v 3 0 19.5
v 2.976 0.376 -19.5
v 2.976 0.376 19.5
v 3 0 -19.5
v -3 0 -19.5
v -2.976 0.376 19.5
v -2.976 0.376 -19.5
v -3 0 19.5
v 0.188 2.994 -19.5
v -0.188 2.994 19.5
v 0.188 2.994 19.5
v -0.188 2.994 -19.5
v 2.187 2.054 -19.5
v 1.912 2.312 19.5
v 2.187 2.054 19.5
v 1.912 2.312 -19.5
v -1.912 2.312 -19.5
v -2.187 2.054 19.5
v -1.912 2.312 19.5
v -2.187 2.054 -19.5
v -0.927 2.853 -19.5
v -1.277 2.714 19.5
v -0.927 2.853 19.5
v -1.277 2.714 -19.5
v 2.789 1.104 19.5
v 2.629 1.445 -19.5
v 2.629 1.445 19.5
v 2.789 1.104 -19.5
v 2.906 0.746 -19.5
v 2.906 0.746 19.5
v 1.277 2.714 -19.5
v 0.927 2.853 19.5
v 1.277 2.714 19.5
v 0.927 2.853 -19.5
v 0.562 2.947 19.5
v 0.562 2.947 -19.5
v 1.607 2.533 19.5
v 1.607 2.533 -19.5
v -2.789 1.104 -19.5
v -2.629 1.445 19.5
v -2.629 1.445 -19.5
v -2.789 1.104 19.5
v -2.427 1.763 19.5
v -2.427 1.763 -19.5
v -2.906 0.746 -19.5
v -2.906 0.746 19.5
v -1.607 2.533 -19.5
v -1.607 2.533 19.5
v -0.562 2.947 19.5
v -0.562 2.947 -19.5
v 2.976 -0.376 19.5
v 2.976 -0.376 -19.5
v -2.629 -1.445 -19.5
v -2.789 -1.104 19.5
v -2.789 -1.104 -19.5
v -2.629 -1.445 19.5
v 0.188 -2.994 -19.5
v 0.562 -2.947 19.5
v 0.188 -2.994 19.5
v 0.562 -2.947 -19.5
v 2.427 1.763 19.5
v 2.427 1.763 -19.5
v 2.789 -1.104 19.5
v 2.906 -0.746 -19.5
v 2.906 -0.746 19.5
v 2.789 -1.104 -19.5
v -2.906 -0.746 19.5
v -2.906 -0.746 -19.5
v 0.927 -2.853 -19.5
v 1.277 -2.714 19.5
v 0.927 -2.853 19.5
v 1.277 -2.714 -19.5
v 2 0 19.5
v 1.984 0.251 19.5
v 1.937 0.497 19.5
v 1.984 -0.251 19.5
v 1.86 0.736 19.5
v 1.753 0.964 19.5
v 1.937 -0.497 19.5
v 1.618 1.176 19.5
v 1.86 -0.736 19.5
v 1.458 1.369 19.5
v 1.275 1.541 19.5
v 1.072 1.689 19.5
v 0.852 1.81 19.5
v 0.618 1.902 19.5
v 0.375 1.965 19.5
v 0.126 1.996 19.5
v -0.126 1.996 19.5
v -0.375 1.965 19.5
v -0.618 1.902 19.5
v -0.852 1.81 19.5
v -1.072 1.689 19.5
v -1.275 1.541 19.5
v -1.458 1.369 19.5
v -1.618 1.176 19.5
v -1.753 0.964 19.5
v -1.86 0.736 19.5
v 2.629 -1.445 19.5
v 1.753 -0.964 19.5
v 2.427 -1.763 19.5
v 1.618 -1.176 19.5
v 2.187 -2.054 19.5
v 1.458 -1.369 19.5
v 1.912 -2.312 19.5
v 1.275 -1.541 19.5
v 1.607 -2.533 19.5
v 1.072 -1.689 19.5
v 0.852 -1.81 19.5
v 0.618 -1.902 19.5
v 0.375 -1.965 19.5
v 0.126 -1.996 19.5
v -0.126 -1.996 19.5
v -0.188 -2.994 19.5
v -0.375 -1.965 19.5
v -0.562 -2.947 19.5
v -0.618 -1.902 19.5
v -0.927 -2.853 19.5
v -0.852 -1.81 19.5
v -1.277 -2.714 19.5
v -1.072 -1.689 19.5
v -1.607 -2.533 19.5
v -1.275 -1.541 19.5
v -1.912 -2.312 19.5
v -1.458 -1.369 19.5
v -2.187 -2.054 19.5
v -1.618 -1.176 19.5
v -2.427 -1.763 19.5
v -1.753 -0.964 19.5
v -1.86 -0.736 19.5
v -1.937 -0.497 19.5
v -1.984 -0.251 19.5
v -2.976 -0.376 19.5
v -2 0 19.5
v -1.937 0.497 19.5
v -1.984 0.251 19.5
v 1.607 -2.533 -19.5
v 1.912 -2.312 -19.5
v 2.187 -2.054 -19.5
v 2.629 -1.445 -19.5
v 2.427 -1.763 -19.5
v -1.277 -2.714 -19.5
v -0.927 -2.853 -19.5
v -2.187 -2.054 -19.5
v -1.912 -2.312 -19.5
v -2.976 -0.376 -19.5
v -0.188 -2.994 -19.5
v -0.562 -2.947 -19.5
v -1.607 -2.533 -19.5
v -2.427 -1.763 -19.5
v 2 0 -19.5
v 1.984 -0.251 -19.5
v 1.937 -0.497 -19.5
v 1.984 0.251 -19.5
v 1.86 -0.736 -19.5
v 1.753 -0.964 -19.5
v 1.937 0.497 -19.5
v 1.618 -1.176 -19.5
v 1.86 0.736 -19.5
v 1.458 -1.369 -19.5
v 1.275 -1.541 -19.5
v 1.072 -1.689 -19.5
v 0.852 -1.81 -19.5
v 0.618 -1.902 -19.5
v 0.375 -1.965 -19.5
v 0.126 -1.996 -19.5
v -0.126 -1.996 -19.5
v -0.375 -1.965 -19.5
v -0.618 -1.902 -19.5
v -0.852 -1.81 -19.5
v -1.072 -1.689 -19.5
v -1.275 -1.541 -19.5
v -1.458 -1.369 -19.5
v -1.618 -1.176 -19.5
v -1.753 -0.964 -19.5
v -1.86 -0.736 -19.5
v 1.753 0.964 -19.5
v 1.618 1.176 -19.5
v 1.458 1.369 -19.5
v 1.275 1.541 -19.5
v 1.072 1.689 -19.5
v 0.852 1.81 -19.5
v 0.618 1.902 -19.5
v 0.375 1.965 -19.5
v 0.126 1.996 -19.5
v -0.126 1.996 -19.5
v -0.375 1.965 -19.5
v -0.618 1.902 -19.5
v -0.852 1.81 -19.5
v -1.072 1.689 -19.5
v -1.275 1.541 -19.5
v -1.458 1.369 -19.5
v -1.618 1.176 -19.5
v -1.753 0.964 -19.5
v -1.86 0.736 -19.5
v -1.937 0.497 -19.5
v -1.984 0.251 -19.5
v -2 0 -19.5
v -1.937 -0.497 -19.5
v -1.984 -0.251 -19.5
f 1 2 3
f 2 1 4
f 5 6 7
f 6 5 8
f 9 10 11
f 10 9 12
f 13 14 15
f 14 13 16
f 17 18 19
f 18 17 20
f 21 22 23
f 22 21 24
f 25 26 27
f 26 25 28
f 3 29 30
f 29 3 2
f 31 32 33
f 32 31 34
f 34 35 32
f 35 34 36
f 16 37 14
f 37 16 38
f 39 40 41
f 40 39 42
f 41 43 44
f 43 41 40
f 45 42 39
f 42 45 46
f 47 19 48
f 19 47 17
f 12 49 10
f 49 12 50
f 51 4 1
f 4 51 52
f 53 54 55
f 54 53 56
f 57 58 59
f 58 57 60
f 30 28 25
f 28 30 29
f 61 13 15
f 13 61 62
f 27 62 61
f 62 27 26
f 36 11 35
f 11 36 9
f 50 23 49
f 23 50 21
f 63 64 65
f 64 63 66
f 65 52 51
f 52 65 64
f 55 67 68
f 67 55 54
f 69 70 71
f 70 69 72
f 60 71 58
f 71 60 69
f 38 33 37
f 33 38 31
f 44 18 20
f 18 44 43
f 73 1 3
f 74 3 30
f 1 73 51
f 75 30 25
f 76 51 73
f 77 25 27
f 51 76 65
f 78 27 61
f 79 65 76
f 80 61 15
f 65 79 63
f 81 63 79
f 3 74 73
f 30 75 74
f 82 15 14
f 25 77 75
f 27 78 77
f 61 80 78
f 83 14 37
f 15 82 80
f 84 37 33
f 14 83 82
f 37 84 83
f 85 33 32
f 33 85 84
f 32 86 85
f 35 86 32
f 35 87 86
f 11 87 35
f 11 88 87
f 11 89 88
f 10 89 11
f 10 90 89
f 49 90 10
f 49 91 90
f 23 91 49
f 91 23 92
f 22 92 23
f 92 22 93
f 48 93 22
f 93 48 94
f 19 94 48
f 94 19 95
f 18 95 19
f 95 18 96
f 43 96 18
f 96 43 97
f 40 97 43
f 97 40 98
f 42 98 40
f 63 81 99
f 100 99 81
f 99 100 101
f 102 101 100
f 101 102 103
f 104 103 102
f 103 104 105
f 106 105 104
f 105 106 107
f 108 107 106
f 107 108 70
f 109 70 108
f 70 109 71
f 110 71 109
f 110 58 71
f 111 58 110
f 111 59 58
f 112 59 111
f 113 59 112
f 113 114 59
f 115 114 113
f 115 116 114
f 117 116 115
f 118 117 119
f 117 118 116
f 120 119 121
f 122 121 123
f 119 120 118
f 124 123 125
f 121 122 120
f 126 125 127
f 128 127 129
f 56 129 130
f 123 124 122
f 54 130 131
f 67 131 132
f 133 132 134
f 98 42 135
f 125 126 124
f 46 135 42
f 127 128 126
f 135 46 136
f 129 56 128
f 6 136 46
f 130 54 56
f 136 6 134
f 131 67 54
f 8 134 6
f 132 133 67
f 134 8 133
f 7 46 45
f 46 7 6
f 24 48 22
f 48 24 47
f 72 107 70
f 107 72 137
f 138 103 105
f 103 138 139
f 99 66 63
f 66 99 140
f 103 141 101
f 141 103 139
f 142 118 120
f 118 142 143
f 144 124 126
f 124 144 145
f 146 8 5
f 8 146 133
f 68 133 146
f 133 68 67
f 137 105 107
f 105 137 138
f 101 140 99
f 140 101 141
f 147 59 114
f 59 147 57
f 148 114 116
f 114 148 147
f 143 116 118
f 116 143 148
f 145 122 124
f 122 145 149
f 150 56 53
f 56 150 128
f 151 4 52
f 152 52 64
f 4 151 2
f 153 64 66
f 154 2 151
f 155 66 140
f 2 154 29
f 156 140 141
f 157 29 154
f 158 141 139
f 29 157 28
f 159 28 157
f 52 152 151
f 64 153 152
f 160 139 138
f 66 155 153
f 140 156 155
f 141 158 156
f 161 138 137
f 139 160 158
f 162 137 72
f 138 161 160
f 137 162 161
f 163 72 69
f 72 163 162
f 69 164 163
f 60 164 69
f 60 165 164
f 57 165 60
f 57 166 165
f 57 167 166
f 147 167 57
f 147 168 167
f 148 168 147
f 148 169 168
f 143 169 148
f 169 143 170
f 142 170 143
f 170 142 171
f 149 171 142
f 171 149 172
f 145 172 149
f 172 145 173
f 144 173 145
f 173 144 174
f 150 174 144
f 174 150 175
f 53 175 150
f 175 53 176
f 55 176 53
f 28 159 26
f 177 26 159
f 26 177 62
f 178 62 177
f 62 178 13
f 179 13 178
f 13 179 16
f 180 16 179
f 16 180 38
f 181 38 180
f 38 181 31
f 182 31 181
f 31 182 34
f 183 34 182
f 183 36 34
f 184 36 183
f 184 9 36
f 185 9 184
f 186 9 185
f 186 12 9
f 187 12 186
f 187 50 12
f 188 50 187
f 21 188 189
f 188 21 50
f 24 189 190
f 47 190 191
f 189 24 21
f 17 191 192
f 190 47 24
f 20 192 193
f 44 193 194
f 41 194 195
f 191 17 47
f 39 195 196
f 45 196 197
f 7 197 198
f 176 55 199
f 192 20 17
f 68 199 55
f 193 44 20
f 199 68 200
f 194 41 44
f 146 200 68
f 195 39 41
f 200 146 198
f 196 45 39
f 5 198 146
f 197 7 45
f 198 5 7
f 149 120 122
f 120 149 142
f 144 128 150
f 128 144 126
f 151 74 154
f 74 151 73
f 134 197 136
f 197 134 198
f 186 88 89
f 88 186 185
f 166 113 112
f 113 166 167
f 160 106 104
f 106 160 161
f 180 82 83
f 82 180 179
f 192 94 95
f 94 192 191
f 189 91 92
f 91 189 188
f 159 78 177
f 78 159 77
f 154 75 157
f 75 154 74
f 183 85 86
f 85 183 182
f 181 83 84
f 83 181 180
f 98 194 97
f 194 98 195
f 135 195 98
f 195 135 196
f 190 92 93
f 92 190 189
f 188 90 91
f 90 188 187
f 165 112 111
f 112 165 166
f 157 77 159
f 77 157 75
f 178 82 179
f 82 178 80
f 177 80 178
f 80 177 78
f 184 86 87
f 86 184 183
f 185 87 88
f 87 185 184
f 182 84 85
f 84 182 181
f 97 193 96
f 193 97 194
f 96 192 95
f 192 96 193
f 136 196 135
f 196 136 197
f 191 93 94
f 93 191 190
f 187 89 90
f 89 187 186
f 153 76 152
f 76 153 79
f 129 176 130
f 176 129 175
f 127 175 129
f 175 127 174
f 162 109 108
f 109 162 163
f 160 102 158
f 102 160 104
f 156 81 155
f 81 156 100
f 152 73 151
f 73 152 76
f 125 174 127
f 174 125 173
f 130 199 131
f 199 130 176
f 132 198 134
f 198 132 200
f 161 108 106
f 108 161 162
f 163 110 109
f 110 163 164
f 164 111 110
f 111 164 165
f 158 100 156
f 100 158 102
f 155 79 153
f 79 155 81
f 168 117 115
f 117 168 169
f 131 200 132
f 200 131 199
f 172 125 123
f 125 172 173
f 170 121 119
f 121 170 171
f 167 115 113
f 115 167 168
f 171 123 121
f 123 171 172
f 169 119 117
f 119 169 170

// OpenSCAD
$fn = 50;


difference() {
	union() {
		translate(v = [0, 0, -19.5000000000]) {
			cylinder(h = 39, r = 3.0000000000);
		}
	}
	union() {
		translate(v = [0, 0, -100.0000000000]) {
			cylinder(h = 200, r = 2.0000000000);
		}
	}
}
